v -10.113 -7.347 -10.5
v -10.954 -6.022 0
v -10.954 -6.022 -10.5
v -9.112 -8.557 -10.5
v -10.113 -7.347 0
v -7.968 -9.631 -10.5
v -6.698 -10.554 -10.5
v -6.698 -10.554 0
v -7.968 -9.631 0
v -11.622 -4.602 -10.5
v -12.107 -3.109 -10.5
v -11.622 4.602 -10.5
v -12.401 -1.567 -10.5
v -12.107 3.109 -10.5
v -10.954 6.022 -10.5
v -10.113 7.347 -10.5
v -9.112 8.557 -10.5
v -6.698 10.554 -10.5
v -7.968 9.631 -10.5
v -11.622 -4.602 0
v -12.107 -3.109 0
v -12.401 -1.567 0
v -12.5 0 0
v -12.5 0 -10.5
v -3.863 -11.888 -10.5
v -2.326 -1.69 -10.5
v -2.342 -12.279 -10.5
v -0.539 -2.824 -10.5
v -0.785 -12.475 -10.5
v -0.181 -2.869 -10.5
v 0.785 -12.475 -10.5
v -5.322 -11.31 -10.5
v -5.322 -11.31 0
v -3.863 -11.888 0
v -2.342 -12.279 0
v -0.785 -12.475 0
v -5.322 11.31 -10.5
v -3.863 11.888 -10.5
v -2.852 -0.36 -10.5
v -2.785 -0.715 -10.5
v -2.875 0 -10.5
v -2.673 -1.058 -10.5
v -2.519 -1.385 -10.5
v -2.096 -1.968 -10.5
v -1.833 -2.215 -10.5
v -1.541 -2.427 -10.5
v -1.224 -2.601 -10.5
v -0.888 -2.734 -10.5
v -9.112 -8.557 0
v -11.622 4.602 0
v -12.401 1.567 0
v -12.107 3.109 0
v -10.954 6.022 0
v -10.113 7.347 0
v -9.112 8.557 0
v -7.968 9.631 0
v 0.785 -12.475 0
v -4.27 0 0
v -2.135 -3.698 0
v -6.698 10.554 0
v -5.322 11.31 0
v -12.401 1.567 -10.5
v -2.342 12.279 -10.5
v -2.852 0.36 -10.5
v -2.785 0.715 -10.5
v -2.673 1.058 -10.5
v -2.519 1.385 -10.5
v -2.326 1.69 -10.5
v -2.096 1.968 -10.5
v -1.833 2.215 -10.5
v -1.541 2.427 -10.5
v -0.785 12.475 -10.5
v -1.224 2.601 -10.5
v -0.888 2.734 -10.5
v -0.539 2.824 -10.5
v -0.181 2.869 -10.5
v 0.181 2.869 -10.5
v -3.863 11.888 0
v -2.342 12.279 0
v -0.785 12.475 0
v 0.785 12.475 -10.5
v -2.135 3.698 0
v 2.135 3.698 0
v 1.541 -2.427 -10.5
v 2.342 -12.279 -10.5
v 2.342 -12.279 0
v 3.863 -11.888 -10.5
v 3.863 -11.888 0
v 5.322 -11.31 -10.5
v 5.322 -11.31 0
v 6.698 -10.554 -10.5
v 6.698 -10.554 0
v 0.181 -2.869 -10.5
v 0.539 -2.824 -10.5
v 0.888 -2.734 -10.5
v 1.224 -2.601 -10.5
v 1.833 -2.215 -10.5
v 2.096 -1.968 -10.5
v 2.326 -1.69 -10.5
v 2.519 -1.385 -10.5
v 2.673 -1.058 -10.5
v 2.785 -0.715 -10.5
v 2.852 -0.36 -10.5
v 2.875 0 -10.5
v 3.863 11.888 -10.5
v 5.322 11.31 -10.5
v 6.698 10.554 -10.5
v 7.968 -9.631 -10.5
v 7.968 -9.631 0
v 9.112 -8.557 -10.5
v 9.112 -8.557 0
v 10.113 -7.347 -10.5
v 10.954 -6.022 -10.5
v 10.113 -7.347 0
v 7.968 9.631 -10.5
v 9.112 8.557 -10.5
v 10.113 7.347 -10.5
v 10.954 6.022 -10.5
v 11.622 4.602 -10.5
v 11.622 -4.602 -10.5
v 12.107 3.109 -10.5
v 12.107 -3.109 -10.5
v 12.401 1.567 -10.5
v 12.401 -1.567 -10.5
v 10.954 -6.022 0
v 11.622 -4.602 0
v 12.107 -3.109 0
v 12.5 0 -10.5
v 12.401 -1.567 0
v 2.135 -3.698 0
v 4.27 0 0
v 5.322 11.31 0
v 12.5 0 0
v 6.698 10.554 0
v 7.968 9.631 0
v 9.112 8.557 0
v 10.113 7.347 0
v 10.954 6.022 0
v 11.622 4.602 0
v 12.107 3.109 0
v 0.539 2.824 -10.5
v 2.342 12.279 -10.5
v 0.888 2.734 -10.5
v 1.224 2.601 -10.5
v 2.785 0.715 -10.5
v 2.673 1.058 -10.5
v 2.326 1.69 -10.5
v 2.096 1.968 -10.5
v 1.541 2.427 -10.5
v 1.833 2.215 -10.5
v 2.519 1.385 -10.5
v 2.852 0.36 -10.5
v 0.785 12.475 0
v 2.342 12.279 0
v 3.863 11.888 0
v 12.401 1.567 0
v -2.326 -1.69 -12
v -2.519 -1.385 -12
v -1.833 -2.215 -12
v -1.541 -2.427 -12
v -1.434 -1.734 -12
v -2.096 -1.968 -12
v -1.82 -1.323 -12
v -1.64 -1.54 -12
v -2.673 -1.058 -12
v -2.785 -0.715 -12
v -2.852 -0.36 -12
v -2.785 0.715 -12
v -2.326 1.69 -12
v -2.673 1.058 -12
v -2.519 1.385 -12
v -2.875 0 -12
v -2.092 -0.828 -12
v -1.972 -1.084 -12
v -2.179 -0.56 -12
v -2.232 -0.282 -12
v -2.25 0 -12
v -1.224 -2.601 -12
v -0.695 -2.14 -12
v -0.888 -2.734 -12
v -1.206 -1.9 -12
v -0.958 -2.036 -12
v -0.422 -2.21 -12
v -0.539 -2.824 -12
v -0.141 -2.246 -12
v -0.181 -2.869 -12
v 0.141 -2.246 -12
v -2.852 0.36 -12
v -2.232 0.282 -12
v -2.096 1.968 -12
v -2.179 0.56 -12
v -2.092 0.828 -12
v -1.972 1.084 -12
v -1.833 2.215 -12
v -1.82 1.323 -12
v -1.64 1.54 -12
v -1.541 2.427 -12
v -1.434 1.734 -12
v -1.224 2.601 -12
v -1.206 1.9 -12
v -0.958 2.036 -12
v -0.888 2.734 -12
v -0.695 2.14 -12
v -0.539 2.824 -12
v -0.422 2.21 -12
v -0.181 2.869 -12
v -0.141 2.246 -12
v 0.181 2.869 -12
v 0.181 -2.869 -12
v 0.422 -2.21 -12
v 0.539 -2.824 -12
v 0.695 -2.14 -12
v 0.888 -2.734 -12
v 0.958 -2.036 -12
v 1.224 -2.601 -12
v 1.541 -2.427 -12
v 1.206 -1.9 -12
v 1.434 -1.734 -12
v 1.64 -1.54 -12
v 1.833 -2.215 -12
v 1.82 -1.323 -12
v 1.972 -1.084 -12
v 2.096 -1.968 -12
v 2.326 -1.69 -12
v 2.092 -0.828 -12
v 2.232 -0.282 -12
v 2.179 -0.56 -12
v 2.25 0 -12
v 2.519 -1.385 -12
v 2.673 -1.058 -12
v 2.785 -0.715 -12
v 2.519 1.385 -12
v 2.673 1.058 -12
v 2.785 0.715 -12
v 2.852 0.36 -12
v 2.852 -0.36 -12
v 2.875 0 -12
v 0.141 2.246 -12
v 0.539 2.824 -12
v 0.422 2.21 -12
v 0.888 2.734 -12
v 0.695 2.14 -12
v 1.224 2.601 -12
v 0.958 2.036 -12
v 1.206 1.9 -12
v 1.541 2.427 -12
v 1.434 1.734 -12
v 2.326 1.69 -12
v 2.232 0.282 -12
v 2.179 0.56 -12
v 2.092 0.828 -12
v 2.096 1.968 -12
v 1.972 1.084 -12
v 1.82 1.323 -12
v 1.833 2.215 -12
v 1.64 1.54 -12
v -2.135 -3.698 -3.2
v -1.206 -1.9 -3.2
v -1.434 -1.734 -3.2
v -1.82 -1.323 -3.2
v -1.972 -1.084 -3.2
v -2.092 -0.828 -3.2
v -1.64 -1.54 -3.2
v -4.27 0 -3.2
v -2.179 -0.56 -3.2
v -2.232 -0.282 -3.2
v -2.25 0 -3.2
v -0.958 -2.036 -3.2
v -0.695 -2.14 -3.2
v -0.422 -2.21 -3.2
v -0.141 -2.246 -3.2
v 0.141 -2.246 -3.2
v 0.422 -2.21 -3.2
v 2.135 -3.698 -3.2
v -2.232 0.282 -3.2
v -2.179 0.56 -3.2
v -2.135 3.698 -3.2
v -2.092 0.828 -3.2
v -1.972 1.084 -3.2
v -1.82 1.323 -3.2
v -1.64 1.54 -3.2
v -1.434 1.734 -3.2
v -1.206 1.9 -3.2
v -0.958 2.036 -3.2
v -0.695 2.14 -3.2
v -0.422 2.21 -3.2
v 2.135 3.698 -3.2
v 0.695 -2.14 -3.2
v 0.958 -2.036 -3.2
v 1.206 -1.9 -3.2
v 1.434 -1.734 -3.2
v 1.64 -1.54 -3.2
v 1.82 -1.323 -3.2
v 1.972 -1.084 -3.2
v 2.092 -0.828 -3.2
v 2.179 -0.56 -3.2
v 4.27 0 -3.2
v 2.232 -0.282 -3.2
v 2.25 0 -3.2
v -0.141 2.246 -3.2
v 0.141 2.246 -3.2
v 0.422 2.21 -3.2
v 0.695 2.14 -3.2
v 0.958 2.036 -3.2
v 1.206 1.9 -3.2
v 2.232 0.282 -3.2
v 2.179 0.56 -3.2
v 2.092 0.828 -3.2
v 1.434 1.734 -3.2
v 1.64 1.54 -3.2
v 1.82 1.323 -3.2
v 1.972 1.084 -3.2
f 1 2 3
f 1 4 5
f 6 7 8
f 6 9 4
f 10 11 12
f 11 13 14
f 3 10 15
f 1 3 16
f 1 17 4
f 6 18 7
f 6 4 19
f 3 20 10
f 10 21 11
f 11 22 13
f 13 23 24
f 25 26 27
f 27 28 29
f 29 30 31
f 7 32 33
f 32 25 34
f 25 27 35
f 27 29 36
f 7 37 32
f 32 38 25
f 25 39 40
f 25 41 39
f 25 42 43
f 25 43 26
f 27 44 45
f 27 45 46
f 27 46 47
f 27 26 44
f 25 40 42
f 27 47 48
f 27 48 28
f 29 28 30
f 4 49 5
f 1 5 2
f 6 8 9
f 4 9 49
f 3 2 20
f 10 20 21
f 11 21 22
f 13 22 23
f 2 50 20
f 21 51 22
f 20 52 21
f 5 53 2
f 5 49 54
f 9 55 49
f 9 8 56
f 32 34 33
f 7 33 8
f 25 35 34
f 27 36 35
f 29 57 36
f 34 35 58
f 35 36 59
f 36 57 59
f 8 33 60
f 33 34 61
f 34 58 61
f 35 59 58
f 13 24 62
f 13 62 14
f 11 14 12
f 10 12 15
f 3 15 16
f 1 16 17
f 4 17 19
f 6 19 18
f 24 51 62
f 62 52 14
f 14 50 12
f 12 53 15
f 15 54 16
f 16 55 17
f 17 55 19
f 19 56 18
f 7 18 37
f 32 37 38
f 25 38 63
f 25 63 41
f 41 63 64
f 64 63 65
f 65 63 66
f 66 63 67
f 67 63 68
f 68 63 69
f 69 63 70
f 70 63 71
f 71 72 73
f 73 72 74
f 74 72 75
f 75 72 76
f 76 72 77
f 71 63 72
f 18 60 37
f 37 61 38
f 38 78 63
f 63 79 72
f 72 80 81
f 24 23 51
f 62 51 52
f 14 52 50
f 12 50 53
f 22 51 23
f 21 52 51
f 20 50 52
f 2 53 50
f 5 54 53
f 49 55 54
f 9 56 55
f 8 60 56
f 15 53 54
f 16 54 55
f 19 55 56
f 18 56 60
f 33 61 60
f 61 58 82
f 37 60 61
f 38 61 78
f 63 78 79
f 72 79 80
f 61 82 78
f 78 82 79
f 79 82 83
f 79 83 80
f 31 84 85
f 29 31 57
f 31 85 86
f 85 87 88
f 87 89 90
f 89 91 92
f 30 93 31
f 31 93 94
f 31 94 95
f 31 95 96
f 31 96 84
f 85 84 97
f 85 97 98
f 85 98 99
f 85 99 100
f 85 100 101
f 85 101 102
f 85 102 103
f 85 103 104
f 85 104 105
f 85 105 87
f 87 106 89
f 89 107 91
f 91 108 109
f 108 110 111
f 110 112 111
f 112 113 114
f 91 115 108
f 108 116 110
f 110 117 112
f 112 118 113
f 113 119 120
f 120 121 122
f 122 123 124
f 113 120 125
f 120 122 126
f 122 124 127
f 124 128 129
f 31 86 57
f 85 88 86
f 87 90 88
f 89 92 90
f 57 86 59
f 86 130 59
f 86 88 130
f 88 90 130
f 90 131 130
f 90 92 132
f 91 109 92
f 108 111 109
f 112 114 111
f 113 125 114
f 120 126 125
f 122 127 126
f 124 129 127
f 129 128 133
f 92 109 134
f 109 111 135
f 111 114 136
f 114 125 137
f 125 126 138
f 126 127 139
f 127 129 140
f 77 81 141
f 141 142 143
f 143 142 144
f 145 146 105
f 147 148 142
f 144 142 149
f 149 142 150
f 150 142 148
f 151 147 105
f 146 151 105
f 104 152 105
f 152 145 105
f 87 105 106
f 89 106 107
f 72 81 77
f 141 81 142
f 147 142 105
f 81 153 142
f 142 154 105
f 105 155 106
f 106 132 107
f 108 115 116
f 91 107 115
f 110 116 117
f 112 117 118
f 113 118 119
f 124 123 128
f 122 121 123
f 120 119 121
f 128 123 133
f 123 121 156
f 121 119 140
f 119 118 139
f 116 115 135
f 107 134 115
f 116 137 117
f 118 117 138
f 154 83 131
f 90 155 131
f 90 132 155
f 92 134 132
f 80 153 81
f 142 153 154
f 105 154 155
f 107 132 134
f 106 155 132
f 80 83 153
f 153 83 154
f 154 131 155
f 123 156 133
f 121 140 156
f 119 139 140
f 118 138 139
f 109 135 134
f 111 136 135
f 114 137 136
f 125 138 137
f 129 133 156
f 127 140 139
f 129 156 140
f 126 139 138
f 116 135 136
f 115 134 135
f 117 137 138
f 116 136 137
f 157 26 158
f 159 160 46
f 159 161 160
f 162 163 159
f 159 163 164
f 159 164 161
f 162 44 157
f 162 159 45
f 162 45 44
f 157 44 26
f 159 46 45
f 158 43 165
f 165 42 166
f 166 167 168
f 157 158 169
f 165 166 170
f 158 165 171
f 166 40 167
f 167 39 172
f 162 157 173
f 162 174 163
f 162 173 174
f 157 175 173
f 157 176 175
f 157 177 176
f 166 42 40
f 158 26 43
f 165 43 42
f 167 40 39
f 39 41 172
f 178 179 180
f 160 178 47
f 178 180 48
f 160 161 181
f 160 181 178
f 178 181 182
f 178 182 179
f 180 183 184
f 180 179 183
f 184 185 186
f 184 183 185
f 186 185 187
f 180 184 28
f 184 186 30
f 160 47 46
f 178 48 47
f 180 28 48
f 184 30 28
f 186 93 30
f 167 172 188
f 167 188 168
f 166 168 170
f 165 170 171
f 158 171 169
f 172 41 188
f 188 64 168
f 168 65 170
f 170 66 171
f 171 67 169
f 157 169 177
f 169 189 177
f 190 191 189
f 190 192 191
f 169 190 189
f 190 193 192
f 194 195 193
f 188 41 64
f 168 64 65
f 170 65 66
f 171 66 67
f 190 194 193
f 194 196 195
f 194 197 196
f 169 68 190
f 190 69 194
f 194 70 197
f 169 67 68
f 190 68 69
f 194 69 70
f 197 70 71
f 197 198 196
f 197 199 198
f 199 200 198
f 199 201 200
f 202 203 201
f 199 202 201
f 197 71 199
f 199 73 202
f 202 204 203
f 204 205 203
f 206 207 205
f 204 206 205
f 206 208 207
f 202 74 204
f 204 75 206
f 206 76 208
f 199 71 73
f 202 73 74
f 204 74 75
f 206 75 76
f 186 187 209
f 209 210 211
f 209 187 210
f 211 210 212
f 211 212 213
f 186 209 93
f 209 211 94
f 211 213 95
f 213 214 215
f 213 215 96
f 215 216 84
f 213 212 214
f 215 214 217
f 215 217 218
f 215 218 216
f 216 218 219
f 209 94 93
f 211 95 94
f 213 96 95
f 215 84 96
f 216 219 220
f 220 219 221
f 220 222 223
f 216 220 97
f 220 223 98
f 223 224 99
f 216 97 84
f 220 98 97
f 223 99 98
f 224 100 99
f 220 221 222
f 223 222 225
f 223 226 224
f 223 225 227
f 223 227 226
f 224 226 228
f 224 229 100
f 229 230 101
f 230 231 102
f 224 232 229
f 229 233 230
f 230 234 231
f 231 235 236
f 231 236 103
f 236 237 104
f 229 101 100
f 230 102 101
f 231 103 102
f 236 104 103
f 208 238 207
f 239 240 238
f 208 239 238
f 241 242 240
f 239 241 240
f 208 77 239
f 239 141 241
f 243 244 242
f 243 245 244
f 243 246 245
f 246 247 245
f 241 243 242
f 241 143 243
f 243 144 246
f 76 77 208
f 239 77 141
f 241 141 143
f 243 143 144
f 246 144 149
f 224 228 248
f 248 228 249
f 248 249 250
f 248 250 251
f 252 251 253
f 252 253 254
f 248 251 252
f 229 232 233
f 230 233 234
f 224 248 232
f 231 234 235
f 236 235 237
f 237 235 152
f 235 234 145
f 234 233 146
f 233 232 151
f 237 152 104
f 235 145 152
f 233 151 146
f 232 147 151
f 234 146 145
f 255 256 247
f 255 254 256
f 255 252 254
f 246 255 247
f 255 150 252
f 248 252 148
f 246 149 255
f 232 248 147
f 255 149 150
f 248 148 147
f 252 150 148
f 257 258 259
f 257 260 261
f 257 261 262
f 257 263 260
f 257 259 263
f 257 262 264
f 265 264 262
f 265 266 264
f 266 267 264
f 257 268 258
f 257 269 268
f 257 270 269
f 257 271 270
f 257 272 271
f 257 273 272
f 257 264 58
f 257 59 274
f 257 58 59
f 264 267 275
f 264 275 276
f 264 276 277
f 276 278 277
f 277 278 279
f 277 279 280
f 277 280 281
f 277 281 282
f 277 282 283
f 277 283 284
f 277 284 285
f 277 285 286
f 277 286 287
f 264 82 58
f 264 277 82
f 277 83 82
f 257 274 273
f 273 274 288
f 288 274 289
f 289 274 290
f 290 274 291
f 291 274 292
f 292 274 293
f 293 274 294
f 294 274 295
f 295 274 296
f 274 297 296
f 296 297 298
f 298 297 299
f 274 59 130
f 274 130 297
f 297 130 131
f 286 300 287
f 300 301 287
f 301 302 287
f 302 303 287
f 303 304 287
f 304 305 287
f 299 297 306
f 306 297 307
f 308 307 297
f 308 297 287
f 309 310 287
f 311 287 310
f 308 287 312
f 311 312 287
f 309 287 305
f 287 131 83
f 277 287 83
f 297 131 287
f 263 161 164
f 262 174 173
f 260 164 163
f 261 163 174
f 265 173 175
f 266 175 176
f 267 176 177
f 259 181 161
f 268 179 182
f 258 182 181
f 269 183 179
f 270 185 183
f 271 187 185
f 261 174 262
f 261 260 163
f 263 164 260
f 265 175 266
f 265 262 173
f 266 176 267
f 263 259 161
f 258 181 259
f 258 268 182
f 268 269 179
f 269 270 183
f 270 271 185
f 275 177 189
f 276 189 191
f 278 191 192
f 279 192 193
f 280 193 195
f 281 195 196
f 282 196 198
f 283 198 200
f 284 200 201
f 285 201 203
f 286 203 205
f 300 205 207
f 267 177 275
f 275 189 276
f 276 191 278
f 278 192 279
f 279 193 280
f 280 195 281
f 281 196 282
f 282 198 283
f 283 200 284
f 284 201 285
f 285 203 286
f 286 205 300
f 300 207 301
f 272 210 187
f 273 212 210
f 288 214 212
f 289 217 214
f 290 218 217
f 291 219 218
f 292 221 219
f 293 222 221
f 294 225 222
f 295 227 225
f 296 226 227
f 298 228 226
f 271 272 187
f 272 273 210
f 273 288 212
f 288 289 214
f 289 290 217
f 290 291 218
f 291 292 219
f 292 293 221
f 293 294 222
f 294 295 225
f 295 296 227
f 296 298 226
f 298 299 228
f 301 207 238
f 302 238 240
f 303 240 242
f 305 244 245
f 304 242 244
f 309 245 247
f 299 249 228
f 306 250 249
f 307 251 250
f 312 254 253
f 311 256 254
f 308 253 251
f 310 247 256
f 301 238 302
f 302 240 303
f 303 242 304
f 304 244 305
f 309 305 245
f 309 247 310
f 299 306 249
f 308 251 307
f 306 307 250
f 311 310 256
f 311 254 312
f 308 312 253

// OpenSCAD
$fn = 50;

difference() {
	union() {
		translate(v = [0, 0, -10.5]) {
			cylinder(h = 10.5, r = 12.5);
		}
		#translate(v = [0, 0, -12.0]) {
			cylinder(h = 12, r = 2.875);
		}
	}
	union() {
		translate(v = [0, 0, 0]) {
			rotate(a = [0, 0, 0]) {
				difference() {
					union() {
						translate(v = [0, 0, -3.2]) {
							linear_extrude(height = 3.2) {
								polygon(points = [[4.2698, 0.0], [2.1349000000000005, 3.697755269078796], [-2.134899999999999, 3.6977552690787965], [-4.2698, 5.228996902999369e-16], [-2.134900000000002, -3.6977552690787956], [2.1348999999999974, -3.697755269078798]]);
							}
						}
					}
					union();
				}
			}
		}
		#translate(v = [0, 0, -100.0]) {
			cylinder(h = 200, r = 2.25);
		}
	}
}
